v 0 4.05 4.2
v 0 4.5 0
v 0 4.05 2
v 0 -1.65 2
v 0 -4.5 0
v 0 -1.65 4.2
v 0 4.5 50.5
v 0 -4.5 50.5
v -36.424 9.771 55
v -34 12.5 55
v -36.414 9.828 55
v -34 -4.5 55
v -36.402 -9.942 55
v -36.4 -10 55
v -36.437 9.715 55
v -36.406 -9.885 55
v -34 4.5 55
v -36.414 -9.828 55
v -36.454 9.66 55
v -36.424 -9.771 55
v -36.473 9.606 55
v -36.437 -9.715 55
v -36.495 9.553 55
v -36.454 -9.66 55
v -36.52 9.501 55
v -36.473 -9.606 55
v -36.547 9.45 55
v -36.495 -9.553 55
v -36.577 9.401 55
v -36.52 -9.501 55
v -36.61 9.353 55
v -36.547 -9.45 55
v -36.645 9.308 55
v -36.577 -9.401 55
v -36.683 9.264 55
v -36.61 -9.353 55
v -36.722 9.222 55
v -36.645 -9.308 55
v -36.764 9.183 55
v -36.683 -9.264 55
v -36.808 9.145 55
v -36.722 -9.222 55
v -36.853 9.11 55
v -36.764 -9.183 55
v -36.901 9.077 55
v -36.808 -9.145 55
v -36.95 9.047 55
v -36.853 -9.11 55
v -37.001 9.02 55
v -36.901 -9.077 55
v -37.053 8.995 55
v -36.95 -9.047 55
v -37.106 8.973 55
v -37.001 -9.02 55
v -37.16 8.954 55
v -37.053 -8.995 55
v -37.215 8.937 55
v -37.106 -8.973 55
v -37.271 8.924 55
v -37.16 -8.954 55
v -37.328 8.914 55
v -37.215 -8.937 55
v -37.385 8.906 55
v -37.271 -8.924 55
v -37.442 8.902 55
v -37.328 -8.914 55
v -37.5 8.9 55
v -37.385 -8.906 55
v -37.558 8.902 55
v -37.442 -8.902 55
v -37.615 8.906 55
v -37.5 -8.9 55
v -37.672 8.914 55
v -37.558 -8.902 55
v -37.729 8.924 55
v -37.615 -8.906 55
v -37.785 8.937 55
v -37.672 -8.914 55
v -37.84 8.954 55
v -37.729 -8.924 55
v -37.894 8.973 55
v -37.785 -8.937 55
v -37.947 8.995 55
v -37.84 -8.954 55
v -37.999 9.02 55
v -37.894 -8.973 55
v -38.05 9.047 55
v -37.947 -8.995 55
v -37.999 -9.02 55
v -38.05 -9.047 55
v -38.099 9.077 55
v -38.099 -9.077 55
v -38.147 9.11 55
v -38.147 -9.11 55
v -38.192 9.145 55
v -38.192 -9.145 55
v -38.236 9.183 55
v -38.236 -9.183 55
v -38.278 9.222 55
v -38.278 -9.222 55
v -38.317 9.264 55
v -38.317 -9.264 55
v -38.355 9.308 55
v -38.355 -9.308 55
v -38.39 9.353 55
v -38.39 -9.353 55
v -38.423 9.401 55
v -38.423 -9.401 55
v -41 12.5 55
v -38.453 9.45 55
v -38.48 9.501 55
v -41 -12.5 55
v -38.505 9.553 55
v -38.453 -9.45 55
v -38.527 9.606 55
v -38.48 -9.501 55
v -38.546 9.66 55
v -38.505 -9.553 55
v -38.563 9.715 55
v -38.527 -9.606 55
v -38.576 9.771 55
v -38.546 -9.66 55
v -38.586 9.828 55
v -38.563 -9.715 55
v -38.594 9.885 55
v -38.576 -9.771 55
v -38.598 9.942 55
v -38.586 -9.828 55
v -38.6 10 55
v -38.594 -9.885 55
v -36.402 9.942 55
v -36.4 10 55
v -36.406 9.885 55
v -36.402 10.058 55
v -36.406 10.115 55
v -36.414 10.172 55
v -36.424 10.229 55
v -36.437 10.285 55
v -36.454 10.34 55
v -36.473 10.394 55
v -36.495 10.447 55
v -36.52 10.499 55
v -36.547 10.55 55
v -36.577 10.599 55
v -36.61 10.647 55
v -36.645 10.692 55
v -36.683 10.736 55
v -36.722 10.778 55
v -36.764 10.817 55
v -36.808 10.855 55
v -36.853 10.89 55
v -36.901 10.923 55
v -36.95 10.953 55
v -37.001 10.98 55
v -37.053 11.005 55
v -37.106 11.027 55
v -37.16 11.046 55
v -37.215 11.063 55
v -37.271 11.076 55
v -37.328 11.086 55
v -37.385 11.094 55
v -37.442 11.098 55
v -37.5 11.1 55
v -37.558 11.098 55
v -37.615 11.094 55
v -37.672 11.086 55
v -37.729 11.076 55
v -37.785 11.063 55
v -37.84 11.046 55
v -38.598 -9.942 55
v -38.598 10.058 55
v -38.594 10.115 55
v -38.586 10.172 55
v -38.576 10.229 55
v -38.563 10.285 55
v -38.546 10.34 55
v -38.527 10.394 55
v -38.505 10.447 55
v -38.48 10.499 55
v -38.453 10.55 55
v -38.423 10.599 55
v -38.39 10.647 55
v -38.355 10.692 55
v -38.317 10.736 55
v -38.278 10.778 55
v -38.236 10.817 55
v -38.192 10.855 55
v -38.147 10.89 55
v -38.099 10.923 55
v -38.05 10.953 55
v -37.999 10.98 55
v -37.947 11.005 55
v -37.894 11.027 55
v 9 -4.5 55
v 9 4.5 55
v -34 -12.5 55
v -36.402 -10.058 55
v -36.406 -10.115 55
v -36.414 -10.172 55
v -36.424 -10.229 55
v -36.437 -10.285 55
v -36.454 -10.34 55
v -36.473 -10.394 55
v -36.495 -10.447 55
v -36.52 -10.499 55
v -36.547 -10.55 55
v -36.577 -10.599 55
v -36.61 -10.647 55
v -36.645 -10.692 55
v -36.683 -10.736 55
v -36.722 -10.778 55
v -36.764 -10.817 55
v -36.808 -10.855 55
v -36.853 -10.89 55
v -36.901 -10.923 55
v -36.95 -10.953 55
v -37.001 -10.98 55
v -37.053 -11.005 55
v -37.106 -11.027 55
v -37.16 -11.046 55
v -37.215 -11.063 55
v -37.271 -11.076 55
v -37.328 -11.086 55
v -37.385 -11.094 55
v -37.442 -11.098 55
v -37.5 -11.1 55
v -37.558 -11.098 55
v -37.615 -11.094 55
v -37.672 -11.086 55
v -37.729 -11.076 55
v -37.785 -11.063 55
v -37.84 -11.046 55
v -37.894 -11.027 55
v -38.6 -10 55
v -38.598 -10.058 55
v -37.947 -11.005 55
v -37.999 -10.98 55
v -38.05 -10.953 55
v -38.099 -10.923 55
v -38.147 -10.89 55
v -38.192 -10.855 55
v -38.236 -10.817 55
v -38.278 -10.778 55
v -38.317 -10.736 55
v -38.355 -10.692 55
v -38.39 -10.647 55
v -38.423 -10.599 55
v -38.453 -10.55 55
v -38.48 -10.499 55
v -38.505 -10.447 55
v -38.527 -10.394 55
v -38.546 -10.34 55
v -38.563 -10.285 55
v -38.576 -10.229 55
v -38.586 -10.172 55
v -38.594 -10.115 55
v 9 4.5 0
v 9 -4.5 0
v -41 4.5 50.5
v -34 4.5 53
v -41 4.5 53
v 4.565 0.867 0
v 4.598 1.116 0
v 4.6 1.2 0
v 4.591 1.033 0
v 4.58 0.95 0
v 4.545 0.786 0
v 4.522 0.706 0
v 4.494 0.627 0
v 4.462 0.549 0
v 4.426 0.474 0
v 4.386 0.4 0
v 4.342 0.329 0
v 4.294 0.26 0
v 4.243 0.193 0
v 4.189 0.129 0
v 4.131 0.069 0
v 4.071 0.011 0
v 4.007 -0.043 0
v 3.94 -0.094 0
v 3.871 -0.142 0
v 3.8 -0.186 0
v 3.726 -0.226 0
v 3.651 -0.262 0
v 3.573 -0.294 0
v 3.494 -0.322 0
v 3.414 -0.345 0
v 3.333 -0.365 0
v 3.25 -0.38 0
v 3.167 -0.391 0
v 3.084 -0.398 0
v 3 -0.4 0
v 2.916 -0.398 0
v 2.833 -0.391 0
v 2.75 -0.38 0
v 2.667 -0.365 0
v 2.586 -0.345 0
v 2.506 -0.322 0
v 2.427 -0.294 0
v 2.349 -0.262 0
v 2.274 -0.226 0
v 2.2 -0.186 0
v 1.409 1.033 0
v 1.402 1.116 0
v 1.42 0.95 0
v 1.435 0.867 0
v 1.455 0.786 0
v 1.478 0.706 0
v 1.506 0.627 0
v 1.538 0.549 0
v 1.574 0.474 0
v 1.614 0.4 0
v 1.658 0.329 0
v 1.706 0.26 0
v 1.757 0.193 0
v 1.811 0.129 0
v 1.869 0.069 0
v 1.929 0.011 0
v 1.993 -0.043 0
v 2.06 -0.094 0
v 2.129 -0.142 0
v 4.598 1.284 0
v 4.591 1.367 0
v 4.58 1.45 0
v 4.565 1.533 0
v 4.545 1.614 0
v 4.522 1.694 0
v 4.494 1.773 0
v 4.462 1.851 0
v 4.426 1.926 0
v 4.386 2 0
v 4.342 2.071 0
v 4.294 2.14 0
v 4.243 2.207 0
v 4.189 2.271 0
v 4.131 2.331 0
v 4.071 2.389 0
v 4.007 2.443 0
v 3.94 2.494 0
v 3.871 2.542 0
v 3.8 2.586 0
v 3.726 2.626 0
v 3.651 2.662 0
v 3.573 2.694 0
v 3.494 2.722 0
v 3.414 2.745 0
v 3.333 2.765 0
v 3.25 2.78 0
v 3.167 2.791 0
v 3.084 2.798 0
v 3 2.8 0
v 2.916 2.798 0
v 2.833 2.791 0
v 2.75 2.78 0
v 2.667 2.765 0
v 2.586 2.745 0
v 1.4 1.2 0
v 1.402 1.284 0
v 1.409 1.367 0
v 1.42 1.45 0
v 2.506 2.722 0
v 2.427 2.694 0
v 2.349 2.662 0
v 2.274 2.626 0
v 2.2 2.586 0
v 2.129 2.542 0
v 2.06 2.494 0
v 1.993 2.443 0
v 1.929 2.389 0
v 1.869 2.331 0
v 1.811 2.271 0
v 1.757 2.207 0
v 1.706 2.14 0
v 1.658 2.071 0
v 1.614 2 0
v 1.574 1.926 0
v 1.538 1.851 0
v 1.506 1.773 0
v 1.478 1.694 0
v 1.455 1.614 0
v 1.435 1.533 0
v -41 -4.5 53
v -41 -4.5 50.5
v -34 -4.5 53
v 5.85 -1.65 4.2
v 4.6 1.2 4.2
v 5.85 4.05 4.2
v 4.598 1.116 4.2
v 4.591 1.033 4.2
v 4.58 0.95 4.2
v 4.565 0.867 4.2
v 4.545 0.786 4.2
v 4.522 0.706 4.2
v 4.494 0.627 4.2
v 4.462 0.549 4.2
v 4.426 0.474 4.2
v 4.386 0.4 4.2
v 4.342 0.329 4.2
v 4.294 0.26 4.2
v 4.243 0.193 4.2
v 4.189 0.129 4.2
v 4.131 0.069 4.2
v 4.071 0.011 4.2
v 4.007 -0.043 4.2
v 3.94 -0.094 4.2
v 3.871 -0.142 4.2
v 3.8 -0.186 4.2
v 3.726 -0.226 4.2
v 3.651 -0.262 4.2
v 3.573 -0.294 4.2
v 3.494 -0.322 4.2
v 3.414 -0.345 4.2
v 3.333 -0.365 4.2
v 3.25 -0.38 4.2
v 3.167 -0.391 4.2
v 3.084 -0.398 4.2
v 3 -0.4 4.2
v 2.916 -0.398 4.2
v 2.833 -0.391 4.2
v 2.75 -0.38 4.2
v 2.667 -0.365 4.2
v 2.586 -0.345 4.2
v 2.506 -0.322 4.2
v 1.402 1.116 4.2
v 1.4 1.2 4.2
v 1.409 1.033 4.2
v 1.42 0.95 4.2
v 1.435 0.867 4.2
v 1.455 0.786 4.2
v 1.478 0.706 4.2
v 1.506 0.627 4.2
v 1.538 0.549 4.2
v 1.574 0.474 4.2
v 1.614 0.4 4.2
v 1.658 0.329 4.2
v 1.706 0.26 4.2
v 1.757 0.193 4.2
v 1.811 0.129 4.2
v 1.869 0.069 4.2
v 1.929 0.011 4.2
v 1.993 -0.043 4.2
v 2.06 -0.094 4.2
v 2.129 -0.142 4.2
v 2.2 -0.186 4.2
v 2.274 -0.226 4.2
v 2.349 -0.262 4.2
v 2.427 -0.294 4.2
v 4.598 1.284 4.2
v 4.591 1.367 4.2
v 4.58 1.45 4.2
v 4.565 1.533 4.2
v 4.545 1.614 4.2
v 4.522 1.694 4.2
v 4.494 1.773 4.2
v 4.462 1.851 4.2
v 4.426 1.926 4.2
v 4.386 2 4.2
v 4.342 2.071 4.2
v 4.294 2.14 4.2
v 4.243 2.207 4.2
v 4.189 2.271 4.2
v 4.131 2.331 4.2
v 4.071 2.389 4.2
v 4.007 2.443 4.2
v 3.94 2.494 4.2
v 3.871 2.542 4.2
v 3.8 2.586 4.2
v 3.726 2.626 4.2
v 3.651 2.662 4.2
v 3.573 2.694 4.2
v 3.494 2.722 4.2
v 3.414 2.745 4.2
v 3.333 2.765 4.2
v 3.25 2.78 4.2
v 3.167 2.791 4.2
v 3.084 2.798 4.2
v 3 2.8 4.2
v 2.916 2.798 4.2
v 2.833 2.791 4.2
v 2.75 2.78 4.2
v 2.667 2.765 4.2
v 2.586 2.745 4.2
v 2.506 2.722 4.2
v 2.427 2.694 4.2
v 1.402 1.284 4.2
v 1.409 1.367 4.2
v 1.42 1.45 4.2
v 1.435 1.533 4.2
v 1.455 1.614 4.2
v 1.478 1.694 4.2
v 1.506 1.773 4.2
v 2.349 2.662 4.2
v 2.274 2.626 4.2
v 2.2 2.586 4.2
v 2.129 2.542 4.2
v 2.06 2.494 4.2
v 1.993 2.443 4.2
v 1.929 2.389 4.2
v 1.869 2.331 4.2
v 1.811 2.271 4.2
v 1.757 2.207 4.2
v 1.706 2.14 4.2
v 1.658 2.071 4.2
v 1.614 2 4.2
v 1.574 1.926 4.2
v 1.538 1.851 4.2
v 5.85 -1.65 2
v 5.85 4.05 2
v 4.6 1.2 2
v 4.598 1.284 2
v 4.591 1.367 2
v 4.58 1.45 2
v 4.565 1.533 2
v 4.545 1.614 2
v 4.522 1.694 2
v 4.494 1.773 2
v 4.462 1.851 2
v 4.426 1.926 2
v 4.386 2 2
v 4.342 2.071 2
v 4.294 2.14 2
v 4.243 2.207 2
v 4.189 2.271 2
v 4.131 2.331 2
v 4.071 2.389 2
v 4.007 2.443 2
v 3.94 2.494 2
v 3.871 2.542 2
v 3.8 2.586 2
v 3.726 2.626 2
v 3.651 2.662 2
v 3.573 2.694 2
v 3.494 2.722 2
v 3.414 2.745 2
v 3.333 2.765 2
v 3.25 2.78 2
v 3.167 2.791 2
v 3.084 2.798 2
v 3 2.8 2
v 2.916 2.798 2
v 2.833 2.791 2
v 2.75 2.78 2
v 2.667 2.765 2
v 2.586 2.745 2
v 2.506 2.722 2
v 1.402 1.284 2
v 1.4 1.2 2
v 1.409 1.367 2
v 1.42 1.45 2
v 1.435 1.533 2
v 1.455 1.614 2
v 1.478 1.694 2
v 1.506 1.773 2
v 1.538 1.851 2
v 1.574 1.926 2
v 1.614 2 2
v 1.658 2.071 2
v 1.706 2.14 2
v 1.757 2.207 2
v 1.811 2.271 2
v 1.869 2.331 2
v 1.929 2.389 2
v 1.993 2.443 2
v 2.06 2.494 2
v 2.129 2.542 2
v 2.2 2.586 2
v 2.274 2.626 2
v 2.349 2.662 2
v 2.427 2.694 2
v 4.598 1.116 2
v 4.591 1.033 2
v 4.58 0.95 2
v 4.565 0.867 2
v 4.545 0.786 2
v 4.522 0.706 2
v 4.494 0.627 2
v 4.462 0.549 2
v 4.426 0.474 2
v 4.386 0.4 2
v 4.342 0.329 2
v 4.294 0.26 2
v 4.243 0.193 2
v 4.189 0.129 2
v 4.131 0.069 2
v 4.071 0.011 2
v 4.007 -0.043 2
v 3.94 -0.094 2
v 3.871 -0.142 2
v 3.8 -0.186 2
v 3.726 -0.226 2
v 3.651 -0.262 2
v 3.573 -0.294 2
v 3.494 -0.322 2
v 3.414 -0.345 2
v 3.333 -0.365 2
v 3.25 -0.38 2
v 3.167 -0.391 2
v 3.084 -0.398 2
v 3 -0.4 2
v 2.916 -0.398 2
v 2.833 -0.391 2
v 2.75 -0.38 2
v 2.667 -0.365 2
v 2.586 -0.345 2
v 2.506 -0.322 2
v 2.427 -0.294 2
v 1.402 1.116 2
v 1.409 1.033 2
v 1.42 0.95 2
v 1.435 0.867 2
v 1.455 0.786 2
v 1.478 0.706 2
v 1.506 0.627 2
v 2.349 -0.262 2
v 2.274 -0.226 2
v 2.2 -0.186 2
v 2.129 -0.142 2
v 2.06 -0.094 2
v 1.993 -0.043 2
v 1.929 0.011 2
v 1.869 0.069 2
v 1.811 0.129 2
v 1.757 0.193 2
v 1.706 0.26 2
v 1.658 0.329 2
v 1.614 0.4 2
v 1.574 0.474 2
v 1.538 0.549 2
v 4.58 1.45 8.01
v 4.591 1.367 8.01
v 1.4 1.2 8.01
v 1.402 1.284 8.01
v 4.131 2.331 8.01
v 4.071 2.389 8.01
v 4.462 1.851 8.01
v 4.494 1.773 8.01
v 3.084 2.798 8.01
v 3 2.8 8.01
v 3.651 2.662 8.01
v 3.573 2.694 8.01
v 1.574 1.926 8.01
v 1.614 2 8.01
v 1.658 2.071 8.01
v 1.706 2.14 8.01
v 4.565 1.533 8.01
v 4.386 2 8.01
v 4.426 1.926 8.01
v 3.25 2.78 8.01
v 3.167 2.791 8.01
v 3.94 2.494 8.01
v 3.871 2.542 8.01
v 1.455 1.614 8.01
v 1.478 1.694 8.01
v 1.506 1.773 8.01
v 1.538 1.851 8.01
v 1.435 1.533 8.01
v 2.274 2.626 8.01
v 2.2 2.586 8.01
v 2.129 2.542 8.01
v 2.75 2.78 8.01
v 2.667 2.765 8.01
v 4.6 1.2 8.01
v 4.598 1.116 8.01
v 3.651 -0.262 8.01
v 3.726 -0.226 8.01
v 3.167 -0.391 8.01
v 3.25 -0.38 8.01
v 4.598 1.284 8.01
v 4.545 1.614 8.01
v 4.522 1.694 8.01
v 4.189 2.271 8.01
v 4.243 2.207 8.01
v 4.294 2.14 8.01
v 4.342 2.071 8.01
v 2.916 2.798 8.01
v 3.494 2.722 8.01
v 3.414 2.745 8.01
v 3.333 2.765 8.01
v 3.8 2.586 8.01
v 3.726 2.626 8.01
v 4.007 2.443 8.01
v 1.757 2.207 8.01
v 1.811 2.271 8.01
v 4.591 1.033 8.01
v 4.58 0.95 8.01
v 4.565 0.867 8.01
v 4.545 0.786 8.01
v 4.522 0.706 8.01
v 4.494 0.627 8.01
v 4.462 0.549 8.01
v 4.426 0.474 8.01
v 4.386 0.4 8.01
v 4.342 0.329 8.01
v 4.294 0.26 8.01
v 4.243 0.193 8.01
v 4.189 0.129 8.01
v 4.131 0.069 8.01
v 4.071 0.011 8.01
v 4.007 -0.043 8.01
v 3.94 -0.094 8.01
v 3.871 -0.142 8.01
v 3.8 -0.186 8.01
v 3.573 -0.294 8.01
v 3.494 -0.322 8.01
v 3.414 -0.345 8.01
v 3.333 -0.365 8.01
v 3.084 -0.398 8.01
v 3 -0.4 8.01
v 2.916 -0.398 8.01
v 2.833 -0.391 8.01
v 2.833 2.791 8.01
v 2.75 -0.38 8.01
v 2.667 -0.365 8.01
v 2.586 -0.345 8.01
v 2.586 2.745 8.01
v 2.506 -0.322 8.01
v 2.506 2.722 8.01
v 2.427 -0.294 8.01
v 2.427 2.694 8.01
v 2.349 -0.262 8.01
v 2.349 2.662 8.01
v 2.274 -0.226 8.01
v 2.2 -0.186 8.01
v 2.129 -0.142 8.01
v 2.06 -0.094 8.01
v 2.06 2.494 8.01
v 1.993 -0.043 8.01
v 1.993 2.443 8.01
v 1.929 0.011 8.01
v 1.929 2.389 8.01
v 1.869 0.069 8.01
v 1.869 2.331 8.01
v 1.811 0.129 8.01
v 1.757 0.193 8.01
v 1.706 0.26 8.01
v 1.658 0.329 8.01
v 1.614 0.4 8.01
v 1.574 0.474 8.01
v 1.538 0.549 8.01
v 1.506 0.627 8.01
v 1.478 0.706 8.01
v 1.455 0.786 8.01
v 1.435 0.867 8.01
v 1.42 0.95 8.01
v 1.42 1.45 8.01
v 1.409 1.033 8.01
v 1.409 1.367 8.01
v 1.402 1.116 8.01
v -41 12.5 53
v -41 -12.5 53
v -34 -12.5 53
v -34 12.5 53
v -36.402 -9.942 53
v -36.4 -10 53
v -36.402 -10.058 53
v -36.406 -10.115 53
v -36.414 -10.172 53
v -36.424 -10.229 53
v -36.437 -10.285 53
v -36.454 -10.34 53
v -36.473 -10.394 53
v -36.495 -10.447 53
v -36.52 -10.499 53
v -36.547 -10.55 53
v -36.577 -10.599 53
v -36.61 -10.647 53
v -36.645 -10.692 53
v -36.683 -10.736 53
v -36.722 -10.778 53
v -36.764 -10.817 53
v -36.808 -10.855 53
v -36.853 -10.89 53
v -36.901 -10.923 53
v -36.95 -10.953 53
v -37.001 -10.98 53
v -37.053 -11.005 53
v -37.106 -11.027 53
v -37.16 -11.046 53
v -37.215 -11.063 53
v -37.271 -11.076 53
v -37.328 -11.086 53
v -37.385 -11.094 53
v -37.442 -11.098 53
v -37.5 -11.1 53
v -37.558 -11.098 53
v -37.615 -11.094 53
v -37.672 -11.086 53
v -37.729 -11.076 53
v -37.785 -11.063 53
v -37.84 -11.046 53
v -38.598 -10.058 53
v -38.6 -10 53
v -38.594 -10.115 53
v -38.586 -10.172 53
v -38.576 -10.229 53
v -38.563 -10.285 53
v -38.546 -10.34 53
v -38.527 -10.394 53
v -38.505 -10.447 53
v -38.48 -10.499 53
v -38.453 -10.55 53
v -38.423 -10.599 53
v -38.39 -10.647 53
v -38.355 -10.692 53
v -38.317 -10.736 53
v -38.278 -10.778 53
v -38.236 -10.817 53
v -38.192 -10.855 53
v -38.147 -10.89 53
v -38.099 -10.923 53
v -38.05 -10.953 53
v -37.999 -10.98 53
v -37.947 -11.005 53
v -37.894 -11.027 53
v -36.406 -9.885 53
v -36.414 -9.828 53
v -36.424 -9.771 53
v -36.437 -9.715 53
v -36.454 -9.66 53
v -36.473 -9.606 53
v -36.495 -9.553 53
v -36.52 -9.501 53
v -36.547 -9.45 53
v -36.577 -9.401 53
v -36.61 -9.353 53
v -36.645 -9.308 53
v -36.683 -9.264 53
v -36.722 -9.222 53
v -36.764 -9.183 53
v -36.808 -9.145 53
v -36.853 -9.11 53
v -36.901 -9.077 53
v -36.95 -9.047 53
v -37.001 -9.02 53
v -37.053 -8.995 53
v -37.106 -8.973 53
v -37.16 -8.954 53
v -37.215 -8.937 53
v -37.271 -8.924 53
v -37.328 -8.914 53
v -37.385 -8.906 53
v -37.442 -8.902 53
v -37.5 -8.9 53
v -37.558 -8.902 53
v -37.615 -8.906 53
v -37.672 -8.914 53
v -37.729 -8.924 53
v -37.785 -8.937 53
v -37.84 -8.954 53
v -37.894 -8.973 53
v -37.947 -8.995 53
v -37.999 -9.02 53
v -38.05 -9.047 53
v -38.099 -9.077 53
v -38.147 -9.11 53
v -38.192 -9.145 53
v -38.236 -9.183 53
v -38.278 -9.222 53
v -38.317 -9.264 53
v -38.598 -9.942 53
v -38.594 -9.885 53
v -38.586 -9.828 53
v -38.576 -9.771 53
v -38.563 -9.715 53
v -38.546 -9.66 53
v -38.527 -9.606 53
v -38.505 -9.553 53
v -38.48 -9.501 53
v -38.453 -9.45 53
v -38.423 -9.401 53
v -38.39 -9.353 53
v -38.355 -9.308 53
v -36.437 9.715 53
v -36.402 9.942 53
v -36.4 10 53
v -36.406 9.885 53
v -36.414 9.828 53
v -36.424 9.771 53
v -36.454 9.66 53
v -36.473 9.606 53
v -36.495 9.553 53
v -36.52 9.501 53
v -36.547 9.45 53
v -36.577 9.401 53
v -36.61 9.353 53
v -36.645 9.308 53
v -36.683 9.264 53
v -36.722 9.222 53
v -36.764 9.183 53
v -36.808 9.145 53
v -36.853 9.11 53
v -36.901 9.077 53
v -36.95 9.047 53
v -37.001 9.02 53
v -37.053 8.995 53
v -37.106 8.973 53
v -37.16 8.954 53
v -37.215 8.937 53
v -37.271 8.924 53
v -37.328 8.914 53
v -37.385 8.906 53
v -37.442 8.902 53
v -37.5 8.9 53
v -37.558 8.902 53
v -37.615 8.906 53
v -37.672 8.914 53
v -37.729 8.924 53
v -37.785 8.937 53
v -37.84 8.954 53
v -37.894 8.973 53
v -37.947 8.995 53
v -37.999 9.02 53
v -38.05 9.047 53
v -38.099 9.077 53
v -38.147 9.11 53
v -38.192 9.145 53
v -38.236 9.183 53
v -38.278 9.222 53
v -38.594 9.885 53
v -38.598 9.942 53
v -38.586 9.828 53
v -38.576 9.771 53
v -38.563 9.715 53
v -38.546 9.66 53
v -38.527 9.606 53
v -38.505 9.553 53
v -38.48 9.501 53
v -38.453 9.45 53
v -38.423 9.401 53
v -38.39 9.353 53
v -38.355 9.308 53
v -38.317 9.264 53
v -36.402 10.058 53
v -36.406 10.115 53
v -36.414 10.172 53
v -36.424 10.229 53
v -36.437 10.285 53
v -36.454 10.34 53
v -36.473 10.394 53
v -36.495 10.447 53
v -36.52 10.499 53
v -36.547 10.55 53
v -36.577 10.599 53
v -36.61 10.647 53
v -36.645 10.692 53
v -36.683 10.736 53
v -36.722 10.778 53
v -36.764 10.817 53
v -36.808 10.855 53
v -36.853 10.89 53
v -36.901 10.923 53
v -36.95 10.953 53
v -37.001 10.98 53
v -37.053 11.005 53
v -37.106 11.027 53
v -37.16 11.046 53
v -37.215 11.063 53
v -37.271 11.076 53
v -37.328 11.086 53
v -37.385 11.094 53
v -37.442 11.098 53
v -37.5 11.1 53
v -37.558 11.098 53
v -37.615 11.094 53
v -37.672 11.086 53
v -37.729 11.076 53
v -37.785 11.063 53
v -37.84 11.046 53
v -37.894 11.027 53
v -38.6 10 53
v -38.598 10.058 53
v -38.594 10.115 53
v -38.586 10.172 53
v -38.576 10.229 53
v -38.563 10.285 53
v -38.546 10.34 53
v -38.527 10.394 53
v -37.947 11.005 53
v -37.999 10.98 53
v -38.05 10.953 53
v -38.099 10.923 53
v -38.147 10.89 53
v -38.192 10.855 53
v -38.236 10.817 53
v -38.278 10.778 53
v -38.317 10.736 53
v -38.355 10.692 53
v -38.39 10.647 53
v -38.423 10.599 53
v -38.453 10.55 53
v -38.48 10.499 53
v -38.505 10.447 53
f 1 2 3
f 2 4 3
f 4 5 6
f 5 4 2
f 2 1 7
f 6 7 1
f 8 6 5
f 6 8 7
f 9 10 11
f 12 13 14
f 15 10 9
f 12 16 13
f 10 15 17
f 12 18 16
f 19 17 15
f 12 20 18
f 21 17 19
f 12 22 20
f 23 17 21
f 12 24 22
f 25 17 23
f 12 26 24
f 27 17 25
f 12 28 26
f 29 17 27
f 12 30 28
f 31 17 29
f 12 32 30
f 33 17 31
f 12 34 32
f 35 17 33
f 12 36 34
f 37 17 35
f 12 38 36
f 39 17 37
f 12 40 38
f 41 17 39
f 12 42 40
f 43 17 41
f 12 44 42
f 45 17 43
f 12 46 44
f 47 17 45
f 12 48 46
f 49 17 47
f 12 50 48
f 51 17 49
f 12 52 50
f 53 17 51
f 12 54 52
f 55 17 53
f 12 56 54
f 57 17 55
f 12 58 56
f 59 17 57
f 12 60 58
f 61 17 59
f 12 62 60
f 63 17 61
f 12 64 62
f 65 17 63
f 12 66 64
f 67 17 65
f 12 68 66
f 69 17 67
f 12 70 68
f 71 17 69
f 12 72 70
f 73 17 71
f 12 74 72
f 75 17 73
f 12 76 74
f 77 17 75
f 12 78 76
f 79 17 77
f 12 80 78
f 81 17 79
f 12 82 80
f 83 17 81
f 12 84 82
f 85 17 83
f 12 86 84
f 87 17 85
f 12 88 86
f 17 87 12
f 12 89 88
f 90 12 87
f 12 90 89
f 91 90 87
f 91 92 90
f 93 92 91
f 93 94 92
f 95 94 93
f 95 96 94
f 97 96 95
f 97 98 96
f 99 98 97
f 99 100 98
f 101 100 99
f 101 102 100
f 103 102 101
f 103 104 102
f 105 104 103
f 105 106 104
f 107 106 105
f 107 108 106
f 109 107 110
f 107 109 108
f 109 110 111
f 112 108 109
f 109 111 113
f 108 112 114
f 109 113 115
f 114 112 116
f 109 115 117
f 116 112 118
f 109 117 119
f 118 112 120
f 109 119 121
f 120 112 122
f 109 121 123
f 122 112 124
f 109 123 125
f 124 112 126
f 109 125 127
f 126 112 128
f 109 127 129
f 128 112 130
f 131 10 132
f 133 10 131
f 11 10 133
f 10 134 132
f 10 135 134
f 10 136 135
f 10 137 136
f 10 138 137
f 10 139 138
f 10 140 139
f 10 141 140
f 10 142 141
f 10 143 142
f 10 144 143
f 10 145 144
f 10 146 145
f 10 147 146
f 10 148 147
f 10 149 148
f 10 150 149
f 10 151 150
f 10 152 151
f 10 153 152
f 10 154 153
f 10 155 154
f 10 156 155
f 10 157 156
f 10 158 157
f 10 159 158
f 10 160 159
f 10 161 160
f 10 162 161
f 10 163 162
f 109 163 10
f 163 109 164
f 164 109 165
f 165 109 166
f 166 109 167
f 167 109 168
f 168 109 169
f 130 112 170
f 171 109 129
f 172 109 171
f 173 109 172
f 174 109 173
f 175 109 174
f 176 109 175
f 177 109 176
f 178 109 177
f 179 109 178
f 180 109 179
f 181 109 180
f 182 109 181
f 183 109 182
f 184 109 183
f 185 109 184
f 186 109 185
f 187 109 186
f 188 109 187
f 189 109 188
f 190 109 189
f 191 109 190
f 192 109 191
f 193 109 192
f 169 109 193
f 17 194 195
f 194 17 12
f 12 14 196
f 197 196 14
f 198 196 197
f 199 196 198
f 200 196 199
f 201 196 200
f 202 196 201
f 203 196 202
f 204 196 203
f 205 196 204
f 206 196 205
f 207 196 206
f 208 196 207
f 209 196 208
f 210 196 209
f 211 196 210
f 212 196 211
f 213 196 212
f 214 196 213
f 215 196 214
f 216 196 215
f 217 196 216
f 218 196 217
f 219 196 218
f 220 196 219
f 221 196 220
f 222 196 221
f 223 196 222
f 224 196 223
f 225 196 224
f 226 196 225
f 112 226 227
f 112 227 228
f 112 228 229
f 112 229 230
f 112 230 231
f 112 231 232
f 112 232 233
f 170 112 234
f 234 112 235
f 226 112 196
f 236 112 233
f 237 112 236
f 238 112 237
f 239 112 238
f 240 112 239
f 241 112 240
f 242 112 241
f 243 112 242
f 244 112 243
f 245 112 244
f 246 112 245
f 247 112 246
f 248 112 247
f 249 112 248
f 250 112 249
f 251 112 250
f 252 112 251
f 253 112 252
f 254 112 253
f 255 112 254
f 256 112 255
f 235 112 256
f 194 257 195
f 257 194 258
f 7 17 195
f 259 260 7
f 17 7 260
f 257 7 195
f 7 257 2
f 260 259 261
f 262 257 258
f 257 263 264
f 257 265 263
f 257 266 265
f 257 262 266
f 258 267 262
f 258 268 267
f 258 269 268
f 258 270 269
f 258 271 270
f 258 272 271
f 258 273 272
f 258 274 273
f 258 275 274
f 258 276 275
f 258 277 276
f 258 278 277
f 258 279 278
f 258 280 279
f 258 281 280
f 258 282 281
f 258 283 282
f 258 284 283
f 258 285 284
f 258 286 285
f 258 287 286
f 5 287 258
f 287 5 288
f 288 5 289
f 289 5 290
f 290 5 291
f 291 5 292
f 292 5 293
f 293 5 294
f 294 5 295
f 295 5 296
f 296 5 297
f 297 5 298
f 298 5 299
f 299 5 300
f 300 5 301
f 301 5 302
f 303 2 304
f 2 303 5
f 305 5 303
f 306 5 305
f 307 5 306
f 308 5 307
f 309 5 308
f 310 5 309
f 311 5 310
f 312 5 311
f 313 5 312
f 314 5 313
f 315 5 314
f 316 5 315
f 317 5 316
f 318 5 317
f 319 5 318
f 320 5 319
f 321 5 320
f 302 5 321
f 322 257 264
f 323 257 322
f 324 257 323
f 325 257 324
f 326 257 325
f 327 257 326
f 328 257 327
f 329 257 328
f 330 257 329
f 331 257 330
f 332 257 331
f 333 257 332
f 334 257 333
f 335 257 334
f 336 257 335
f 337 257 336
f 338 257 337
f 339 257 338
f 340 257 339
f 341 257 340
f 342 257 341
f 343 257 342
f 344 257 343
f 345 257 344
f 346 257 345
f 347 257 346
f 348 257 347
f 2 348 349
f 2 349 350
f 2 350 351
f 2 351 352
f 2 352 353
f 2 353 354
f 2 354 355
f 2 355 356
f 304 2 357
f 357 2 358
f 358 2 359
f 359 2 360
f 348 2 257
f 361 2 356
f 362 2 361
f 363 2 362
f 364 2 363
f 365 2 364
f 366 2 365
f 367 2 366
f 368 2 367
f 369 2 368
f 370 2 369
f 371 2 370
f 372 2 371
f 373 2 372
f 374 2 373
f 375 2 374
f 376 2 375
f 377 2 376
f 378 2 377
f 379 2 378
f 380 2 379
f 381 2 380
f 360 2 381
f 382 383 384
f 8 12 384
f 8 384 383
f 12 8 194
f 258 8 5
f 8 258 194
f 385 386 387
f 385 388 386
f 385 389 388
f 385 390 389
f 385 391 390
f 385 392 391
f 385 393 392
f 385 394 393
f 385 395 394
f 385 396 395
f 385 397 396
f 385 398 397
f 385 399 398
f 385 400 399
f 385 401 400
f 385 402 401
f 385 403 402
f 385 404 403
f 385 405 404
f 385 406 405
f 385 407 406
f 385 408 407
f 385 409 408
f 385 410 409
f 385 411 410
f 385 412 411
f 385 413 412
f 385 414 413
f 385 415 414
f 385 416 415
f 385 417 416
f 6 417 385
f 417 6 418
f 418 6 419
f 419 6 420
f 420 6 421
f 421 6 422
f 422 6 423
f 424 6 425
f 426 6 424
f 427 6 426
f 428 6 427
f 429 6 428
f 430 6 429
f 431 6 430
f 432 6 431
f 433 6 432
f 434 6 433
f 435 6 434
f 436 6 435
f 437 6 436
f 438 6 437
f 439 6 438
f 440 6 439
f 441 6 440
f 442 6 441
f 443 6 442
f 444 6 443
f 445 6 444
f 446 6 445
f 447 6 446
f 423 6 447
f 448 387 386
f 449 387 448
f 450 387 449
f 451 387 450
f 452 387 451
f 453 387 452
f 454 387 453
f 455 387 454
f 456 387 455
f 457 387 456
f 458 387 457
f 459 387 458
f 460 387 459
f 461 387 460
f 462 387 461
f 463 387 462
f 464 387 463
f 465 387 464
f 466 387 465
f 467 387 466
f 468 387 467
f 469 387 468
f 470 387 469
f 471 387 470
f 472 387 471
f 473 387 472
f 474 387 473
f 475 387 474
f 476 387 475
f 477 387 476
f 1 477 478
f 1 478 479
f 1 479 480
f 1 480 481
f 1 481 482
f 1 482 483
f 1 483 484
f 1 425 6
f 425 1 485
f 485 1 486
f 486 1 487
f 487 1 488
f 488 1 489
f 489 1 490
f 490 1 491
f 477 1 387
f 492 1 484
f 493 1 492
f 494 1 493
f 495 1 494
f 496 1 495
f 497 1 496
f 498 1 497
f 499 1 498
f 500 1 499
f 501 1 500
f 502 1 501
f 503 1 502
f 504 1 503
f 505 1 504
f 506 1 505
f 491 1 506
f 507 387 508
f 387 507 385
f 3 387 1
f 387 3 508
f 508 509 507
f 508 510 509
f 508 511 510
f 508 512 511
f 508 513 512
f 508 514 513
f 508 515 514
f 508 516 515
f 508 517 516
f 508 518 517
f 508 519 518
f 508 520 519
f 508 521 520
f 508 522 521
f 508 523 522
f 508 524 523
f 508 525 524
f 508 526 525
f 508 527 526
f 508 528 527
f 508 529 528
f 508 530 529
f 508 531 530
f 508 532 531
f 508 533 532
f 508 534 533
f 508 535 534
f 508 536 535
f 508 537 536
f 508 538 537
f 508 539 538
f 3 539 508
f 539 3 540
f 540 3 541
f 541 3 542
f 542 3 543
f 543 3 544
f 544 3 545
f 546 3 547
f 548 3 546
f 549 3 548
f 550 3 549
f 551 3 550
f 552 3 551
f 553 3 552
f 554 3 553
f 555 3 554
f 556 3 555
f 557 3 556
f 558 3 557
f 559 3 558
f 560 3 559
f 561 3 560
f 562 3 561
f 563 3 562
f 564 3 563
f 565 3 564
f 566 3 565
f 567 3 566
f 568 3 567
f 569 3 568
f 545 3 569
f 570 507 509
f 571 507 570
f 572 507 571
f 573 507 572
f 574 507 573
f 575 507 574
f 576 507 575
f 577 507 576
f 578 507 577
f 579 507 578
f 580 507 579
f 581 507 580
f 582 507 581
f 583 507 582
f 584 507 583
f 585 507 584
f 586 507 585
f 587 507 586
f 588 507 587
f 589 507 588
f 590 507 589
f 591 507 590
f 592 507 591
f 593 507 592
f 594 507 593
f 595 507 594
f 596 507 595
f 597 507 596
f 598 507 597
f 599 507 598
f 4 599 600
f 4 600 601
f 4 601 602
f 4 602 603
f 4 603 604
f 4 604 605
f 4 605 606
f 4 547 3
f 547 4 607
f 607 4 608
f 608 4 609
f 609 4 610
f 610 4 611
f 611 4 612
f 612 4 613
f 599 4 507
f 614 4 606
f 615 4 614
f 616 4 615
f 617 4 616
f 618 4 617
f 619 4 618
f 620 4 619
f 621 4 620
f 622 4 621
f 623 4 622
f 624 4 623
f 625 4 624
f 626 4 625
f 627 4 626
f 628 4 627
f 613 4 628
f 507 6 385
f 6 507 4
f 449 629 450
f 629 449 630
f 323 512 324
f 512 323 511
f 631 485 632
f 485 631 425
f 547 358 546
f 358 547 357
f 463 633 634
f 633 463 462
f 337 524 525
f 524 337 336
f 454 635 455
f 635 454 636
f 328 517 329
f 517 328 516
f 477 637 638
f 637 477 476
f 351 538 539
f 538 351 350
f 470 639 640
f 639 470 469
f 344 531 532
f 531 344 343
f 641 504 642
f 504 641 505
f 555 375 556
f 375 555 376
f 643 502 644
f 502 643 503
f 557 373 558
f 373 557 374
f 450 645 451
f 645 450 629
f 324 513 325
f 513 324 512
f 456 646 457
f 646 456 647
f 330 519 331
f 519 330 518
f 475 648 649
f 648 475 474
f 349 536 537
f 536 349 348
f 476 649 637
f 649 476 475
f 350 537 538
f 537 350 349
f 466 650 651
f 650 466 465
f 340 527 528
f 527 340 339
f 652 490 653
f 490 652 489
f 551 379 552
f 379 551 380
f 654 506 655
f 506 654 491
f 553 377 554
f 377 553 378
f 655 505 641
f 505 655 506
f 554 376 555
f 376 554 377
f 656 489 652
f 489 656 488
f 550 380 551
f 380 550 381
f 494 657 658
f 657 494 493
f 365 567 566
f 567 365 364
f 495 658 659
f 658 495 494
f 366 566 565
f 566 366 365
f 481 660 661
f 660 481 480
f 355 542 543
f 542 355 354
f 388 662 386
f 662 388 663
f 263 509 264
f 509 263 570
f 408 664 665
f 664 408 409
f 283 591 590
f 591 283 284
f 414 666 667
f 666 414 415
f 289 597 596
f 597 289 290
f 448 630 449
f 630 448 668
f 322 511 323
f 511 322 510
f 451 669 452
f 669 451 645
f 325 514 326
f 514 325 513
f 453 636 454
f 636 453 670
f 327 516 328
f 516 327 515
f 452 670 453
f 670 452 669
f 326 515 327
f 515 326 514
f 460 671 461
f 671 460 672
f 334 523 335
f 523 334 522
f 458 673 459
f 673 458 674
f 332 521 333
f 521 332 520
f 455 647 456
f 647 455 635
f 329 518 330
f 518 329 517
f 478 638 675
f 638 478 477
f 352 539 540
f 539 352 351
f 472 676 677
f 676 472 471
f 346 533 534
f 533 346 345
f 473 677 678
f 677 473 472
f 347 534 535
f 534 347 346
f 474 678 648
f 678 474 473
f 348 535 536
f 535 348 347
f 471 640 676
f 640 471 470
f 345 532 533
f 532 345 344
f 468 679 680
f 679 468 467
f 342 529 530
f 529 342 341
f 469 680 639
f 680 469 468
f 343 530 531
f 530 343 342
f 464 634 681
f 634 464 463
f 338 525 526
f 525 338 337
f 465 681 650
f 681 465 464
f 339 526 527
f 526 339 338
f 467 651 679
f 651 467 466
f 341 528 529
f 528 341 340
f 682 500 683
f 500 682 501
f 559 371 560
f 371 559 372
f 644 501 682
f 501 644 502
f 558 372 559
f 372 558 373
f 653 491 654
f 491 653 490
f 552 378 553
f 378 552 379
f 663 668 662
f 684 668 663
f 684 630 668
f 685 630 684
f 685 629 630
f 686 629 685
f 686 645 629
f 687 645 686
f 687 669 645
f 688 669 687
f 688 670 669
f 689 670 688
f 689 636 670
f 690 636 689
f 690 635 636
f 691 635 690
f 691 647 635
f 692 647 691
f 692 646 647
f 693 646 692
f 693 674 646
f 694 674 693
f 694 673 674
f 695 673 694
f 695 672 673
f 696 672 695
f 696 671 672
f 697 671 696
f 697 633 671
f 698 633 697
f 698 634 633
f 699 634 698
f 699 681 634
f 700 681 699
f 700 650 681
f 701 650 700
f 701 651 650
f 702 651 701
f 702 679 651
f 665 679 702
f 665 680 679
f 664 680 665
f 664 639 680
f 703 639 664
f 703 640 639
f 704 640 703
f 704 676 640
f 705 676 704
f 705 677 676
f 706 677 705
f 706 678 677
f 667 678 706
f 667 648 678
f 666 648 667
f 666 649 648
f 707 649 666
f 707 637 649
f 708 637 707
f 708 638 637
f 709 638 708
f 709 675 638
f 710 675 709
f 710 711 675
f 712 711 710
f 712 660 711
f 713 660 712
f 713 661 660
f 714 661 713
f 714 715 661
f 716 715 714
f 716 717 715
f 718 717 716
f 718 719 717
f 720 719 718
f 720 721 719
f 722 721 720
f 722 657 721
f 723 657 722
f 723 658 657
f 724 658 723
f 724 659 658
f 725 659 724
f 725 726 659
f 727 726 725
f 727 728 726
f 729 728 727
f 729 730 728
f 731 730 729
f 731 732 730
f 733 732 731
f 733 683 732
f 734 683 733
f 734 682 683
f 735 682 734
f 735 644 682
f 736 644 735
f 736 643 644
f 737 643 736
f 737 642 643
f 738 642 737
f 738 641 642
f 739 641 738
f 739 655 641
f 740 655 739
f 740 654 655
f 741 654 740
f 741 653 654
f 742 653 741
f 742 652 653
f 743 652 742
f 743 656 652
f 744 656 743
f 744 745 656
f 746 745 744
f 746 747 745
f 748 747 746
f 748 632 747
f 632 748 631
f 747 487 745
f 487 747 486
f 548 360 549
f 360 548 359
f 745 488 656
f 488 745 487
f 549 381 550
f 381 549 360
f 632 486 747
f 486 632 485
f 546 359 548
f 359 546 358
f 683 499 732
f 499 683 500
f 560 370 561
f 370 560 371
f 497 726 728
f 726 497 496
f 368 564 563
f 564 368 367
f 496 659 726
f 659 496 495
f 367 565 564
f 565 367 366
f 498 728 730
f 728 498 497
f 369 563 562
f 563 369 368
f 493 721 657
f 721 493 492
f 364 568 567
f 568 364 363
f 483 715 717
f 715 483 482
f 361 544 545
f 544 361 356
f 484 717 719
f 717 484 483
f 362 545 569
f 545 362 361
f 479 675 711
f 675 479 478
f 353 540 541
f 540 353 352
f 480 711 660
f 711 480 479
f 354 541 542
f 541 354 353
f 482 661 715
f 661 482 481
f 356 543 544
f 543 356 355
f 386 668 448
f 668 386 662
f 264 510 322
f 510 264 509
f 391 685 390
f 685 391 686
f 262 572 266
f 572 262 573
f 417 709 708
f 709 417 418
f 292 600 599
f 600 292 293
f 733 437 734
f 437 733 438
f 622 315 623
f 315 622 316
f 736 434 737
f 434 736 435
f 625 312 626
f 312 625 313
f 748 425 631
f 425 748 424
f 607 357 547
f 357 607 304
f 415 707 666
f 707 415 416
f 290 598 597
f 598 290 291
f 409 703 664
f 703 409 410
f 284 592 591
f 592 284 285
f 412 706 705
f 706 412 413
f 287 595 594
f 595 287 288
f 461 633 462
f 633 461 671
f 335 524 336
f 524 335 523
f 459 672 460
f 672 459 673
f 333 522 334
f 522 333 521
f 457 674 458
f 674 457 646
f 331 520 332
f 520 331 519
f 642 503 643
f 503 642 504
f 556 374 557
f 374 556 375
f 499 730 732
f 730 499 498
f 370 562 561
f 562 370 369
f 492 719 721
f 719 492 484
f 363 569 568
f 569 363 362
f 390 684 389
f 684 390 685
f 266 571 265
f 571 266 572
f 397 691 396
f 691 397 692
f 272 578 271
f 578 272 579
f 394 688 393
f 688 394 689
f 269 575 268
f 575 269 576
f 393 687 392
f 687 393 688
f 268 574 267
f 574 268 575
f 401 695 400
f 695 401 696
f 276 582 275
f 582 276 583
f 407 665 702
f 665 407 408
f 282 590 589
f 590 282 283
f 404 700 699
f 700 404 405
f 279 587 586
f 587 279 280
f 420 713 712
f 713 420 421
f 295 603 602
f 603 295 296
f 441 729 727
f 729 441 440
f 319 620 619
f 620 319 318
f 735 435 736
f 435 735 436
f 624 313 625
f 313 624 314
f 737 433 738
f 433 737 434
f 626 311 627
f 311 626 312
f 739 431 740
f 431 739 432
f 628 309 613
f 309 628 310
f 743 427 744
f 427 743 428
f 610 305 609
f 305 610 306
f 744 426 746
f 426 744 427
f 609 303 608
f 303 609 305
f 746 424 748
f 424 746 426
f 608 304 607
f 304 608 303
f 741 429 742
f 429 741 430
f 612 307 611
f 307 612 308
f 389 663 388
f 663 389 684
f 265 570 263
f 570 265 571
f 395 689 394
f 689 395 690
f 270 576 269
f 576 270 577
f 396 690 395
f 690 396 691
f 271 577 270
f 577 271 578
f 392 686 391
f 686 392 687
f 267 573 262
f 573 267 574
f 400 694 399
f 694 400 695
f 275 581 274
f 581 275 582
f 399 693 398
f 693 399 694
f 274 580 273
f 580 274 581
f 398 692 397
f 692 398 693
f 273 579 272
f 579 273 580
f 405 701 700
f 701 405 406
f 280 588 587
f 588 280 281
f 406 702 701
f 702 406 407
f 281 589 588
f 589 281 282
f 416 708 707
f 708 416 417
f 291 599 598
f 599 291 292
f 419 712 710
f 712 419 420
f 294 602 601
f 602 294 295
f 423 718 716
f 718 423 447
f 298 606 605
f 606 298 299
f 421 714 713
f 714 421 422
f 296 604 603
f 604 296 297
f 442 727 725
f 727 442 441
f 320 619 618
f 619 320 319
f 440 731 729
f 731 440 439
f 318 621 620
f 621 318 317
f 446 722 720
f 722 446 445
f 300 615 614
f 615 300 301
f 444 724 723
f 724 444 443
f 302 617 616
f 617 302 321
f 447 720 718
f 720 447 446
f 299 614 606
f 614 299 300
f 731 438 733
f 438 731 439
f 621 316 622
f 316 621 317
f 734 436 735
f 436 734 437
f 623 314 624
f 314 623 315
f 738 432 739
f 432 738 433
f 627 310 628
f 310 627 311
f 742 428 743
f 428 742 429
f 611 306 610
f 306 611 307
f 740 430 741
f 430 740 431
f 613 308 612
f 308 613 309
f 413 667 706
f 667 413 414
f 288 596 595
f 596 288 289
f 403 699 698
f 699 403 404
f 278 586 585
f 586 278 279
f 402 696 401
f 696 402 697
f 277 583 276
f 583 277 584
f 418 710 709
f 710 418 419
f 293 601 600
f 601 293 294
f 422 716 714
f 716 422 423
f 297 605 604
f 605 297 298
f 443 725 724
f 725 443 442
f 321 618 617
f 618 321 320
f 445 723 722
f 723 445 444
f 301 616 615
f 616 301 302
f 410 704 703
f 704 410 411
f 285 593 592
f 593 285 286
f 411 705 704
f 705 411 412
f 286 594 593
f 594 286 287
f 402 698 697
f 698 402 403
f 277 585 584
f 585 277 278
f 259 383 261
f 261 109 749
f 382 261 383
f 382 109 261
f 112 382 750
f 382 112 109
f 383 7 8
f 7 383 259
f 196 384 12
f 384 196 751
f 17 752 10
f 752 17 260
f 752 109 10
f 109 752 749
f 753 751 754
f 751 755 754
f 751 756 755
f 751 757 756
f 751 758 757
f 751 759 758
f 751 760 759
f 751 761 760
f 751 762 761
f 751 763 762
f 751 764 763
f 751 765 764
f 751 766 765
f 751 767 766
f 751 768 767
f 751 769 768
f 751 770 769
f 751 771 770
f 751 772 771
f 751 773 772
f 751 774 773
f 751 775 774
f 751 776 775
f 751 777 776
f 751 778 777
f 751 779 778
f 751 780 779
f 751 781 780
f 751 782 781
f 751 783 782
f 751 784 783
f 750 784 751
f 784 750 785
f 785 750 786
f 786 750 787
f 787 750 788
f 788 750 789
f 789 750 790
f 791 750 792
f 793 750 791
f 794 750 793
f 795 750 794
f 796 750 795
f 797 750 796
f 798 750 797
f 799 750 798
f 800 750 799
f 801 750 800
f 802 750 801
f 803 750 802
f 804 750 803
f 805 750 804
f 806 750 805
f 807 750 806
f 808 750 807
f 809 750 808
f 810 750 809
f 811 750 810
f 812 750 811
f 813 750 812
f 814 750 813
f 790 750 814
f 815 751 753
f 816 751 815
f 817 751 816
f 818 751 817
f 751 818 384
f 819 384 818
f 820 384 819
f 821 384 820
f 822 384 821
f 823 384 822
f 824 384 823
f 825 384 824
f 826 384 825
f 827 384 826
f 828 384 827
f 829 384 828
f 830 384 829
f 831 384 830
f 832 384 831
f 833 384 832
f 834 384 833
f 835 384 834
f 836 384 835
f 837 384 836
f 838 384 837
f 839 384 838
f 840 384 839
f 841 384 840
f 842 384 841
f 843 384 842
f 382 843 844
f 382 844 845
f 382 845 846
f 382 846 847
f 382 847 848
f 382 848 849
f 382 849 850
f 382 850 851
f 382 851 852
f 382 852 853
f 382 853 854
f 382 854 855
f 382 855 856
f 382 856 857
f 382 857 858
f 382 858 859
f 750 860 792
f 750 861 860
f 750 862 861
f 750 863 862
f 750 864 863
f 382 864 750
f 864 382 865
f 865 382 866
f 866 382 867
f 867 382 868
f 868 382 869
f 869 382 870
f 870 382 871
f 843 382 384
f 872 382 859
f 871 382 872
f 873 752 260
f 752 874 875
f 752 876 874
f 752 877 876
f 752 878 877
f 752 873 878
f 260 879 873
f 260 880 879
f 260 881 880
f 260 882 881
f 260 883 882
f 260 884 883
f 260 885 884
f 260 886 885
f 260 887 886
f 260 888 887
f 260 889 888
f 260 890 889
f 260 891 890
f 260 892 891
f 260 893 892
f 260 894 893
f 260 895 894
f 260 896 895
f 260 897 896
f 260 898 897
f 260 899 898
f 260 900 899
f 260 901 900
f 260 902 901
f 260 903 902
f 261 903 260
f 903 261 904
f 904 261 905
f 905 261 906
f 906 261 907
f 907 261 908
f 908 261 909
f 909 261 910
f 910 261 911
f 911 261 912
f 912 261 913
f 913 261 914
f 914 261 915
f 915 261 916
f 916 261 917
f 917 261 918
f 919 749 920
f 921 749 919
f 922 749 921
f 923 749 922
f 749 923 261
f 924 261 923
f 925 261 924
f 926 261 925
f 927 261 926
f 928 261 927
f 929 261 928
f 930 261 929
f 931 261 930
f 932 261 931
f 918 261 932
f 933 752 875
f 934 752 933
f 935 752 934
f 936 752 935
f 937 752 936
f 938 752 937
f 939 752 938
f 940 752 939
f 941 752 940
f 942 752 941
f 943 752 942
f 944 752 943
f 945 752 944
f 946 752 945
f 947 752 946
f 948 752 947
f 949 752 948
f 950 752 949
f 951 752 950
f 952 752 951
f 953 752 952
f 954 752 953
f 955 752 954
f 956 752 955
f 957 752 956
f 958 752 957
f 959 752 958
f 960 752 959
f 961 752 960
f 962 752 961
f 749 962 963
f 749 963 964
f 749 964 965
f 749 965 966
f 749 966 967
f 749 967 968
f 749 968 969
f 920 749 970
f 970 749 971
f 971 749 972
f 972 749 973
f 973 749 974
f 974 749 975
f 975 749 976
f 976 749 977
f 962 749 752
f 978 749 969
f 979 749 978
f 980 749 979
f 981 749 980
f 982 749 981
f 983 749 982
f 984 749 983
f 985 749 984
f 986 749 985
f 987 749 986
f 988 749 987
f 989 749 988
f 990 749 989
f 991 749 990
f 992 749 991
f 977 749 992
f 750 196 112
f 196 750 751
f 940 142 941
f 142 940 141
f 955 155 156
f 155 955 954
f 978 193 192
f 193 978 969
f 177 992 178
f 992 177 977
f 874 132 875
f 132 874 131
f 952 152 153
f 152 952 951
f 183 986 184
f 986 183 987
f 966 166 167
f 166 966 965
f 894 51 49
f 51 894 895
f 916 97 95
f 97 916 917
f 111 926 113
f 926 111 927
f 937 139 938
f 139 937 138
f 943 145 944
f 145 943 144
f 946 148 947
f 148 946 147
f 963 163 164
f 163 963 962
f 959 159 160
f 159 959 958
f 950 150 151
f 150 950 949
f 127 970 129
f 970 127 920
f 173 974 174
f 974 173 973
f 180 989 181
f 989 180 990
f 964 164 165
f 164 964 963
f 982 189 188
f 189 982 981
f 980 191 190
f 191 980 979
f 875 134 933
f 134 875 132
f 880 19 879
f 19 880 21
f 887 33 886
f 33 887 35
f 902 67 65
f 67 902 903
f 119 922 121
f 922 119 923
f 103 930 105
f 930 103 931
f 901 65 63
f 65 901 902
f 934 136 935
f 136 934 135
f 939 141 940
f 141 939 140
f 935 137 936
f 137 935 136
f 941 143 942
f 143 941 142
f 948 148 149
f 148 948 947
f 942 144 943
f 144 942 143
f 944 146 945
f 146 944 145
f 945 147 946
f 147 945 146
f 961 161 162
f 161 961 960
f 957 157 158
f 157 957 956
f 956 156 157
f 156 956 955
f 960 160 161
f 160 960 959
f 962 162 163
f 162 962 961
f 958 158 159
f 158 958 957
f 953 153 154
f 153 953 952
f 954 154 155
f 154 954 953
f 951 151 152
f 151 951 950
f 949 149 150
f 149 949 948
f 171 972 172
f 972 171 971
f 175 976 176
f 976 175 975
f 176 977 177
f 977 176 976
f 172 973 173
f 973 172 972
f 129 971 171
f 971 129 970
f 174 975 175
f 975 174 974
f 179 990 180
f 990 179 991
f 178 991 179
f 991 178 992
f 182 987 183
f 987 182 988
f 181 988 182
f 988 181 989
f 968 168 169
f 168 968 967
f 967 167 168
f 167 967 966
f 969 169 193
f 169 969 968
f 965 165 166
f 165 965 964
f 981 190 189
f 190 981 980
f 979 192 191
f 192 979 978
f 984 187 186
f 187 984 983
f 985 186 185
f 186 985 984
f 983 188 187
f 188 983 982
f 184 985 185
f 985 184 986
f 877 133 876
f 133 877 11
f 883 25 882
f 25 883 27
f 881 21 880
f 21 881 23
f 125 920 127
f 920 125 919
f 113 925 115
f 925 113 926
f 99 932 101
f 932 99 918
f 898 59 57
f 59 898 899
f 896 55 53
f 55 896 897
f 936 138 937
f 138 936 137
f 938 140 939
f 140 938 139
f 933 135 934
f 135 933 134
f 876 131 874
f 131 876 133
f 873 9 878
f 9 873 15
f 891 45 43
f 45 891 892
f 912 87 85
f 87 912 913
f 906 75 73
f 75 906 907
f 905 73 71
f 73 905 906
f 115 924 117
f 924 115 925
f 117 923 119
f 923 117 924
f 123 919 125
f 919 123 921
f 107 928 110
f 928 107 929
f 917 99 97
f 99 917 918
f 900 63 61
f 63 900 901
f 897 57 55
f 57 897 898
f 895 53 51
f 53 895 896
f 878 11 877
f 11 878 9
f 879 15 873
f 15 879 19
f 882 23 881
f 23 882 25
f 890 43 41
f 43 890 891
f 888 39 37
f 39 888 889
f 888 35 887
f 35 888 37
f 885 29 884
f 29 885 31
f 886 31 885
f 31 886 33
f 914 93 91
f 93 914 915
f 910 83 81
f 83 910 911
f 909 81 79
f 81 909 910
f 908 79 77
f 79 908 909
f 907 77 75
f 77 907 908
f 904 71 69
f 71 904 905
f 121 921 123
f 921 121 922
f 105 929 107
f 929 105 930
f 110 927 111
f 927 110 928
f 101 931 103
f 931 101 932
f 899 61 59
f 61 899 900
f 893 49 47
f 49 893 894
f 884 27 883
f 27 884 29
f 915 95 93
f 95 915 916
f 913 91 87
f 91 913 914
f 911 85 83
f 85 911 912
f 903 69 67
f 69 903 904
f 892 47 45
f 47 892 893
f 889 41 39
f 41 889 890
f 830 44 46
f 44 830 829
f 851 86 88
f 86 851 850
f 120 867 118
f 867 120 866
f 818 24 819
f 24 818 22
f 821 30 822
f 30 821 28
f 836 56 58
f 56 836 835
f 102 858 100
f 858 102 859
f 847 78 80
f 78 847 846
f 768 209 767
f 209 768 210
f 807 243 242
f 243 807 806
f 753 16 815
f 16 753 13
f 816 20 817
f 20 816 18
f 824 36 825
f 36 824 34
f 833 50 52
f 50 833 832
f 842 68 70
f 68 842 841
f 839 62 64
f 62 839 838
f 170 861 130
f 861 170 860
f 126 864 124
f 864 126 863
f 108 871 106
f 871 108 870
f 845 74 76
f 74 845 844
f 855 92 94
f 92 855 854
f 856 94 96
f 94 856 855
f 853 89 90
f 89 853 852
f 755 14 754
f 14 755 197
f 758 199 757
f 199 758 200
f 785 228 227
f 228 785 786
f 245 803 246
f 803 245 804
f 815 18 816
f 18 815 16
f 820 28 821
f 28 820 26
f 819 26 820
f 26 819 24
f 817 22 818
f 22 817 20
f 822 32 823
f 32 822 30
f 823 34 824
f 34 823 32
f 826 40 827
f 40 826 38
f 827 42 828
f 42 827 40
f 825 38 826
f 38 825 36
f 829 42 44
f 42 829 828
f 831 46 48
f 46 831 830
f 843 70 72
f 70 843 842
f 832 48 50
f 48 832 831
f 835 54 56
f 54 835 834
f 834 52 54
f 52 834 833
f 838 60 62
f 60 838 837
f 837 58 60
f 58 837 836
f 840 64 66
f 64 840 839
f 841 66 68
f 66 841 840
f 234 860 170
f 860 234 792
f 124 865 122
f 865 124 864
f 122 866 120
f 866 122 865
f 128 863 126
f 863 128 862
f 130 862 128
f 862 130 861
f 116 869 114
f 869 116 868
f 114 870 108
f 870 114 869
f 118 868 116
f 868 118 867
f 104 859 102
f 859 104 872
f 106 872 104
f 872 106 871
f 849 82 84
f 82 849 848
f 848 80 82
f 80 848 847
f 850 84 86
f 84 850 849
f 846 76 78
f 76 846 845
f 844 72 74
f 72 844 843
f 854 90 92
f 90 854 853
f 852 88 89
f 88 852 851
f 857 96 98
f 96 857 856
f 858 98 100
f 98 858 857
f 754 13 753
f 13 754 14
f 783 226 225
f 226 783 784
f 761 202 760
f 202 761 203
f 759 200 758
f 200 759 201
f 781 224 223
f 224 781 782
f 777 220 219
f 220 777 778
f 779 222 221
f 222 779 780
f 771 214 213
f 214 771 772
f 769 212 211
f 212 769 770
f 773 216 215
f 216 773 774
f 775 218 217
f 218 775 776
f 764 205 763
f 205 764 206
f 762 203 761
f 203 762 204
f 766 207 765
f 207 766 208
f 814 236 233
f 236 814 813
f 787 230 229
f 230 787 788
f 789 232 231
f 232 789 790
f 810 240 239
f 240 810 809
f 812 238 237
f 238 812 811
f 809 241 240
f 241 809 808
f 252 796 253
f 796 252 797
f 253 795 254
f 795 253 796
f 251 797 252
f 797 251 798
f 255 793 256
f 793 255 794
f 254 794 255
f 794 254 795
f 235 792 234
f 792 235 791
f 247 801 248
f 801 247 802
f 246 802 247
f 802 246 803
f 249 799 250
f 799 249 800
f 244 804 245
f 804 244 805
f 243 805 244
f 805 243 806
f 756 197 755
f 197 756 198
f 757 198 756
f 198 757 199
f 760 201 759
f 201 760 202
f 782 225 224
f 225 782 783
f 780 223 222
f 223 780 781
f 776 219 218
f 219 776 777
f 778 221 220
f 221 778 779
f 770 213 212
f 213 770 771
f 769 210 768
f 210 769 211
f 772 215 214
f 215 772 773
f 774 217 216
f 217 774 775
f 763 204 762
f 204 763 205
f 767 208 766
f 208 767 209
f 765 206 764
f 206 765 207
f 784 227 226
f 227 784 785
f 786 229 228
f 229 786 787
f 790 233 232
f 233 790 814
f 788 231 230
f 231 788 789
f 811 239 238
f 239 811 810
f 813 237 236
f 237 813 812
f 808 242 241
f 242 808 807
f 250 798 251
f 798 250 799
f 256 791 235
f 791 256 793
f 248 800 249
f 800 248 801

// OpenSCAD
$fa=3;
$fs=0.05;
p = 0.01;
p2 = 2*p;

sq_hole_a = 5.7;
sq_hole_h = 2.2;

m2_d = 2.2;
m3_d = 3.2;

h1 = 55;
wx = 9;
wy = 9;

h2 = 50;

h3 = 8;

inax = 7;
inay = 25;
inaz = 2;
ina_hole = 20;

h_hole = 2.0;

hole_x = 3;
hole_y = 3.3;

module hole(h, d) {
    cylinder(h+p2, d=d);
}


difference() {
    translate([0, -wy/2, 0])
    union() {
        difference() {
            cube([wx, wy, h1]);
            //translate([(wx-sq_hole_a)/2, (wy-sq_hole_a)/2, h_hole])
            translate([-p, wy - hole_y - sq_hole_a/2, h_hole])
            cube([hole_x + sq_hole_a/2 + p, sq_hole_a, sq_hole_h]);
            translate([hole_x, wy - hole_y, -p])
            hole(h3, m3_d);
        }
        
        translate([-h2+wx, 0, h1-wx/2])
        cube([h2, wy, wx/2]);
                
        difference() {
            translate([-h2+wx, -(inay-wy)/2, h1-inaz])
            cube([inax, inay, inaz]);   
        }   
    }    
    translate([-h2+wx+inax/2, ina_hole/2, h1-inaz-p])
    hole(inaz + p2, m2_d);
    translate([-h2+wx+inax/2, -ina_hole/2, h1-inaz-p])
    hole(inaz + p2, m2_d);  
}
